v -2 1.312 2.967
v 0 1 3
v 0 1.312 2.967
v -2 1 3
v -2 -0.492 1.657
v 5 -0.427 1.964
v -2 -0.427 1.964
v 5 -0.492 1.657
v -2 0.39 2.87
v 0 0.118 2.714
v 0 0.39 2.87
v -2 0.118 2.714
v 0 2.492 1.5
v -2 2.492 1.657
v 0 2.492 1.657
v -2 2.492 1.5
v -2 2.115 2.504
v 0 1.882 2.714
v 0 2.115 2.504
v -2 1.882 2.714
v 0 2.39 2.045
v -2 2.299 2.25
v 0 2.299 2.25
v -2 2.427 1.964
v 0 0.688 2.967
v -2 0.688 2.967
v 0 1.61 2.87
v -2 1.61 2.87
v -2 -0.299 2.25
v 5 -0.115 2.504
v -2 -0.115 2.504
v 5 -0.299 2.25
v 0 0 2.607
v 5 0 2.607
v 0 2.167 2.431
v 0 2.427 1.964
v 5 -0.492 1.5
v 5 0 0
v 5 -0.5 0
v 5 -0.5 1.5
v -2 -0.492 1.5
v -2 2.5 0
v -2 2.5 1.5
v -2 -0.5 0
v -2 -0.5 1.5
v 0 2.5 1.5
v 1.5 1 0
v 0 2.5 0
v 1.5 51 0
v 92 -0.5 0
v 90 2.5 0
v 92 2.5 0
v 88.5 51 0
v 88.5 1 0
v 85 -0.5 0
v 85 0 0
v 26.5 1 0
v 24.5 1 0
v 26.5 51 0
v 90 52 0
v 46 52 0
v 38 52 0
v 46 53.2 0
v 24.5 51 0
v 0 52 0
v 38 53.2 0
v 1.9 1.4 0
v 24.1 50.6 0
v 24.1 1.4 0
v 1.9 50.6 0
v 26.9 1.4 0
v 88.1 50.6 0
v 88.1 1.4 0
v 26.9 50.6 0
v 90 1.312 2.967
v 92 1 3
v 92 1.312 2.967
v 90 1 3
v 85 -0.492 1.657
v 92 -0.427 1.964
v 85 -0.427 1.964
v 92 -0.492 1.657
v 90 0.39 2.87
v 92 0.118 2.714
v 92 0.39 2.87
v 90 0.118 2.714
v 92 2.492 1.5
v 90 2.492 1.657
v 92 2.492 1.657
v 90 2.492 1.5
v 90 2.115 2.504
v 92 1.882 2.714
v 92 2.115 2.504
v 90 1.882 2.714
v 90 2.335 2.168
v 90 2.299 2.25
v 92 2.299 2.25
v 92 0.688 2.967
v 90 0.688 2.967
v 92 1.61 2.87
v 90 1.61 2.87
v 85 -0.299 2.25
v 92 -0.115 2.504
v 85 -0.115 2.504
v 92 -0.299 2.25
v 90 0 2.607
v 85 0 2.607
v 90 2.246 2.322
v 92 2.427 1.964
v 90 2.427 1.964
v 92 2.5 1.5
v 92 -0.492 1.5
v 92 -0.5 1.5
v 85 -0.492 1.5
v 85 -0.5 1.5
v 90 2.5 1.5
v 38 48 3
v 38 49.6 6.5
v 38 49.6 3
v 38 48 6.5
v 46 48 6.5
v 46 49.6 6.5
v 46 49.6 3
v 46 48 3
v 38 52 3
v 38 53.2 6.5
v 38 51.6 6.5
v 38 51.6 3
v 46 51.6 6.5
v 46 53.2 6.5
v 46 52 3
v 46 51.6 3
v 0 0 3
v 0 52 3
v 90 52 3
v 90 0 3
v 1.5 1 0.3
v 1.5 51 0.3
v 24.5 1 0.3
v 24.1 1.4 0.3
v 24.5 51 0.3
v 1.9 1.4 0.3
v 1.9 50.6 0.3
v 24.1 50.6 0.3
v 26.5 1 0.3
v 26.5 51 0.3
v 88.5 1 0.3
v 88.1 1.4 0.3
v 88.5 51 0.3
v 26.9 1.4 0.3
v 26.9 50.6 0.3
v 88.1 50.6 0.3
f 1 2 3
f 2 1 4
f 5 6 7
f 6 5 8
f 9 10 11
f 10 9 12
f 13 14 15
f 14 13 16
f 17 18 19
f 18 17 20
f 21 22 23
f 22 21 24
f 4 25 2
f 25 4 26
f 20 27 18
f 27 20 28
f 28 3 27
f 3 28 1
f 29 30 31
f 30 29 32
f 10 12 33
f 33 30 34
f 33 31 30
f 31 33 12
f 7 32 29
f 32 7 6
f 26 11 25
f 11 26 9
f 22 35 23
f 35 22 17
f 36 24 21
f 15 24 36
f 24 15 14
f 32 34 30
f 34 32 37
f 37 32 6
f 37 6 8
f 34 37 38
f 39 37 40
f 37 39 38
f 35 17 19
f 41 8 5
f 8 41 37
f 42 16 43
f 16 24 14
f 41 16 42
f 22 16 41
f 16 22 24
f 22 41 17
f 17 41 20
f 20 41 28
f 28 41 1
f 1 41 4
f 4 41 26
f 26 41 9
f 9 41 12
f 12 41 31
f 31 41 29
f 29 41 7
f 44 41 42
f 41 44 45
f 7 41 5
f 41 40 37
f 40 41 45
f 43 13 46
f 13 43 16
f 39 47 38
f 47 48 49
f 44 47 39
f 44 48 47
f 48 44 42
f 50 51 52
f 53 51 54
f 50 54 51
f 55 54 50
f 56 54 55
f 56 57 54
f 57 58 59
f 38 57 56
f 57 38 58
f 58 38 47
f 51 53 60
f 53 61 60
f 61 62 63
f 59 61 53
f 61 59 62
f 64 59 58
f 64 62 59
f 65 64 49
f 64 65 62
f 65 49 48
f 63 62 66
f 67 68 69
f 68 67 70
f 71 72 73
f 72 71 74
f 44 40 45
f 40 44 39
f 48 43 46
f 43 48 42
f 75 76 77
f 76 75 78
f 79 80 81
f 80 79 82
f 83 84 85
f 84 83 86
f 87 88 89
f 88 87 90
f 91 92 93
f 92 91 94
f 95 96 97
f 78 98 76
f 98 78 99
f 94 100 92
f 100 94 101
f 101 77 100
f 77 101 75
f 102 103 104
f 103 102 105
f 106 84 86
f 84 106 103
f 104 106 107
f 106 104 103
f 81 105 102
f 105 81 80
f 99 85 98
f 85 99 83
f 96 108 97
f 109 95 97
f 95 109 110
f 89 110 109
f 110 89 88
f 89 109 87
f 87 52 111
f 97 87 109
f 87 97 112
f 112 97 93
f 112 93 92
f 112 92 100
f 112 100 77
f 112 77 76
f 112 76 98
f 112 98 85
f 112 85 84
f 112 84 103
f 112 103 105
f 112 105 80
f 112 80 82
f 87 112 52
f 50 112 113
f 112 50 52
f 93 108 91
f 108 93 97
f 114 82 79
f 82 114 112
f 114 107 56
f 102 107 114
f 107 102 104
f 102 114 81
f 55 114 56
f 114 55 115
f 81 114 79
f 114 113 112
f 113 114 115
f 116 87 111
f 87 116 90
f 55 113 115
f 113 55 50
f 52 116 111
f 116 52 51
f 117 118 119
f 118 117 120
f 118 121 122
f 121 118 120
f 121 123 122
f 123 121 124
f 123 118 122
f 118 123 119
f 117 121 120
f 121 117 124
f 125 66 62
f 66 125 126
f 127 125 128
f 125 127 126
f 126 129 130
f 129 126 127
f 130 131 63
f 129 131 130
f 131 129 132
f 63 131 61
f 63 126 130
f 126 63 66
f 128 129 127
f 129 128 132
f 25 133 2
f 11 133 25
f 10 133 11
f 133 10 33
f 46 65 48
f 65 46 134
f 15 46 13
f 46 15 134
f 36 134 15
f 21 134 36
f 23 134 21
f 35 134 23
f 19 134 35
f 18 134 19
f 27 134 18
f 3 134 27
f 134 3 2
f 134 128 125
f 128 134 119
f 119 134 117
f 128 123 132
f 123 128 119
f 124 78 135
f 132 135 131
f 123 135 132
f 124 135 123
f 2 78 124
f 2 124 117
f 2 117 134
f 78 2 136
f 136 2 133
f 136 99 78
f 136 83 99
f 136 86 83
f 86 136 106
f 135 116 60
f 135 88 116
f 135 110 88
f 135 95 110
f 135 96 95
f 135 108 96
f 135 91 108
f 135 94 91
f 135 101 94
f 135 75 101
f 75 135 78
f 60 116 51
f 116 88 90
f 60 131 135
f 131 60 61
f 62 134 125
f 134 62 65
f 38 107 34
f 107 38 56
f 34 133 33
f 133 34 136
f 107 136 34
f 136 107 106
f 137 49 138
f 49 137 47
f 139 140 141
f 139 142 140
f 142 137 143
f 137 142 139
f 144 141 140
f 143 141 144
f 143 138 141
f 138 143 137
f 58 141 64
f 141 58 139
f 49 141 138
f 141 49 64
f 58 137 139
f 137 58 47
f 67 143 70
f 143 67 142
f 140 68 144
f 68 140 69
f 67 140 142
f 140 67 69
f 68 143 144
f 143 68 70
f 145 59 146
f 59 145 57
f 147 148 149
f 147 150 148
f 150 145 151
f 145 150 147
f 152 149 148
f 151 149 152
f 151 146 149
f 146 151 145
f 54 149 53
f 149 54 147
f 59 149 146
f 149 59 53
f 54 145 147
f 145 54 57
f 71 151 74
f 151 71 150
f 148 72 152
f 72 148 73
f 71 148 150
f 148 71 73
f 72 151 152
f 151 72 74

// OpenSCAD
$fn=30;

difference() {
   body();
   topCutout();
   bottomCutout();
}
   
module body() {
   /* main form */
   cube([90,52,3]);

   /* posts on corners */
   translate([-2,1,1.5]) union() {
      rotate([0,90,0]) cylinder(h=7,d=3);
      translate([0,-1.5,-1.5]) cube([7,3,1.5]);
   }
   translate([90-5,1,1.5]) union() {
      rotate([0,90,0]) cylinder(h=7,d=3);
      translate([0,-1.5,-1.5]) cube([7,3,1.5]);
   }

   /* latch */
   translate([38,48,0]) union() {
      cube([8,1.6,6.5]);
      translate([0,3.6,0]) cube([8,1.6,6.5]);
   }
}

module topCutout() {
   translate([1.5,0,-0.1]) difference() {
      translate([0,1,0]) cube([23,50,0.4]);
      translate([0.4,1.4,-0.1]) cube([23-0.8,50-0.8,0.5]);
   }
}

module bottomCutout() {
   translate([26.5,0,-0.1]) difference() {
      translate([0,1,0]) cube([62,50,0.4]);
      translate([0.4,1.4,-0.1]) cube([62-0.8,50-0.8,0.5]);
   }
}
